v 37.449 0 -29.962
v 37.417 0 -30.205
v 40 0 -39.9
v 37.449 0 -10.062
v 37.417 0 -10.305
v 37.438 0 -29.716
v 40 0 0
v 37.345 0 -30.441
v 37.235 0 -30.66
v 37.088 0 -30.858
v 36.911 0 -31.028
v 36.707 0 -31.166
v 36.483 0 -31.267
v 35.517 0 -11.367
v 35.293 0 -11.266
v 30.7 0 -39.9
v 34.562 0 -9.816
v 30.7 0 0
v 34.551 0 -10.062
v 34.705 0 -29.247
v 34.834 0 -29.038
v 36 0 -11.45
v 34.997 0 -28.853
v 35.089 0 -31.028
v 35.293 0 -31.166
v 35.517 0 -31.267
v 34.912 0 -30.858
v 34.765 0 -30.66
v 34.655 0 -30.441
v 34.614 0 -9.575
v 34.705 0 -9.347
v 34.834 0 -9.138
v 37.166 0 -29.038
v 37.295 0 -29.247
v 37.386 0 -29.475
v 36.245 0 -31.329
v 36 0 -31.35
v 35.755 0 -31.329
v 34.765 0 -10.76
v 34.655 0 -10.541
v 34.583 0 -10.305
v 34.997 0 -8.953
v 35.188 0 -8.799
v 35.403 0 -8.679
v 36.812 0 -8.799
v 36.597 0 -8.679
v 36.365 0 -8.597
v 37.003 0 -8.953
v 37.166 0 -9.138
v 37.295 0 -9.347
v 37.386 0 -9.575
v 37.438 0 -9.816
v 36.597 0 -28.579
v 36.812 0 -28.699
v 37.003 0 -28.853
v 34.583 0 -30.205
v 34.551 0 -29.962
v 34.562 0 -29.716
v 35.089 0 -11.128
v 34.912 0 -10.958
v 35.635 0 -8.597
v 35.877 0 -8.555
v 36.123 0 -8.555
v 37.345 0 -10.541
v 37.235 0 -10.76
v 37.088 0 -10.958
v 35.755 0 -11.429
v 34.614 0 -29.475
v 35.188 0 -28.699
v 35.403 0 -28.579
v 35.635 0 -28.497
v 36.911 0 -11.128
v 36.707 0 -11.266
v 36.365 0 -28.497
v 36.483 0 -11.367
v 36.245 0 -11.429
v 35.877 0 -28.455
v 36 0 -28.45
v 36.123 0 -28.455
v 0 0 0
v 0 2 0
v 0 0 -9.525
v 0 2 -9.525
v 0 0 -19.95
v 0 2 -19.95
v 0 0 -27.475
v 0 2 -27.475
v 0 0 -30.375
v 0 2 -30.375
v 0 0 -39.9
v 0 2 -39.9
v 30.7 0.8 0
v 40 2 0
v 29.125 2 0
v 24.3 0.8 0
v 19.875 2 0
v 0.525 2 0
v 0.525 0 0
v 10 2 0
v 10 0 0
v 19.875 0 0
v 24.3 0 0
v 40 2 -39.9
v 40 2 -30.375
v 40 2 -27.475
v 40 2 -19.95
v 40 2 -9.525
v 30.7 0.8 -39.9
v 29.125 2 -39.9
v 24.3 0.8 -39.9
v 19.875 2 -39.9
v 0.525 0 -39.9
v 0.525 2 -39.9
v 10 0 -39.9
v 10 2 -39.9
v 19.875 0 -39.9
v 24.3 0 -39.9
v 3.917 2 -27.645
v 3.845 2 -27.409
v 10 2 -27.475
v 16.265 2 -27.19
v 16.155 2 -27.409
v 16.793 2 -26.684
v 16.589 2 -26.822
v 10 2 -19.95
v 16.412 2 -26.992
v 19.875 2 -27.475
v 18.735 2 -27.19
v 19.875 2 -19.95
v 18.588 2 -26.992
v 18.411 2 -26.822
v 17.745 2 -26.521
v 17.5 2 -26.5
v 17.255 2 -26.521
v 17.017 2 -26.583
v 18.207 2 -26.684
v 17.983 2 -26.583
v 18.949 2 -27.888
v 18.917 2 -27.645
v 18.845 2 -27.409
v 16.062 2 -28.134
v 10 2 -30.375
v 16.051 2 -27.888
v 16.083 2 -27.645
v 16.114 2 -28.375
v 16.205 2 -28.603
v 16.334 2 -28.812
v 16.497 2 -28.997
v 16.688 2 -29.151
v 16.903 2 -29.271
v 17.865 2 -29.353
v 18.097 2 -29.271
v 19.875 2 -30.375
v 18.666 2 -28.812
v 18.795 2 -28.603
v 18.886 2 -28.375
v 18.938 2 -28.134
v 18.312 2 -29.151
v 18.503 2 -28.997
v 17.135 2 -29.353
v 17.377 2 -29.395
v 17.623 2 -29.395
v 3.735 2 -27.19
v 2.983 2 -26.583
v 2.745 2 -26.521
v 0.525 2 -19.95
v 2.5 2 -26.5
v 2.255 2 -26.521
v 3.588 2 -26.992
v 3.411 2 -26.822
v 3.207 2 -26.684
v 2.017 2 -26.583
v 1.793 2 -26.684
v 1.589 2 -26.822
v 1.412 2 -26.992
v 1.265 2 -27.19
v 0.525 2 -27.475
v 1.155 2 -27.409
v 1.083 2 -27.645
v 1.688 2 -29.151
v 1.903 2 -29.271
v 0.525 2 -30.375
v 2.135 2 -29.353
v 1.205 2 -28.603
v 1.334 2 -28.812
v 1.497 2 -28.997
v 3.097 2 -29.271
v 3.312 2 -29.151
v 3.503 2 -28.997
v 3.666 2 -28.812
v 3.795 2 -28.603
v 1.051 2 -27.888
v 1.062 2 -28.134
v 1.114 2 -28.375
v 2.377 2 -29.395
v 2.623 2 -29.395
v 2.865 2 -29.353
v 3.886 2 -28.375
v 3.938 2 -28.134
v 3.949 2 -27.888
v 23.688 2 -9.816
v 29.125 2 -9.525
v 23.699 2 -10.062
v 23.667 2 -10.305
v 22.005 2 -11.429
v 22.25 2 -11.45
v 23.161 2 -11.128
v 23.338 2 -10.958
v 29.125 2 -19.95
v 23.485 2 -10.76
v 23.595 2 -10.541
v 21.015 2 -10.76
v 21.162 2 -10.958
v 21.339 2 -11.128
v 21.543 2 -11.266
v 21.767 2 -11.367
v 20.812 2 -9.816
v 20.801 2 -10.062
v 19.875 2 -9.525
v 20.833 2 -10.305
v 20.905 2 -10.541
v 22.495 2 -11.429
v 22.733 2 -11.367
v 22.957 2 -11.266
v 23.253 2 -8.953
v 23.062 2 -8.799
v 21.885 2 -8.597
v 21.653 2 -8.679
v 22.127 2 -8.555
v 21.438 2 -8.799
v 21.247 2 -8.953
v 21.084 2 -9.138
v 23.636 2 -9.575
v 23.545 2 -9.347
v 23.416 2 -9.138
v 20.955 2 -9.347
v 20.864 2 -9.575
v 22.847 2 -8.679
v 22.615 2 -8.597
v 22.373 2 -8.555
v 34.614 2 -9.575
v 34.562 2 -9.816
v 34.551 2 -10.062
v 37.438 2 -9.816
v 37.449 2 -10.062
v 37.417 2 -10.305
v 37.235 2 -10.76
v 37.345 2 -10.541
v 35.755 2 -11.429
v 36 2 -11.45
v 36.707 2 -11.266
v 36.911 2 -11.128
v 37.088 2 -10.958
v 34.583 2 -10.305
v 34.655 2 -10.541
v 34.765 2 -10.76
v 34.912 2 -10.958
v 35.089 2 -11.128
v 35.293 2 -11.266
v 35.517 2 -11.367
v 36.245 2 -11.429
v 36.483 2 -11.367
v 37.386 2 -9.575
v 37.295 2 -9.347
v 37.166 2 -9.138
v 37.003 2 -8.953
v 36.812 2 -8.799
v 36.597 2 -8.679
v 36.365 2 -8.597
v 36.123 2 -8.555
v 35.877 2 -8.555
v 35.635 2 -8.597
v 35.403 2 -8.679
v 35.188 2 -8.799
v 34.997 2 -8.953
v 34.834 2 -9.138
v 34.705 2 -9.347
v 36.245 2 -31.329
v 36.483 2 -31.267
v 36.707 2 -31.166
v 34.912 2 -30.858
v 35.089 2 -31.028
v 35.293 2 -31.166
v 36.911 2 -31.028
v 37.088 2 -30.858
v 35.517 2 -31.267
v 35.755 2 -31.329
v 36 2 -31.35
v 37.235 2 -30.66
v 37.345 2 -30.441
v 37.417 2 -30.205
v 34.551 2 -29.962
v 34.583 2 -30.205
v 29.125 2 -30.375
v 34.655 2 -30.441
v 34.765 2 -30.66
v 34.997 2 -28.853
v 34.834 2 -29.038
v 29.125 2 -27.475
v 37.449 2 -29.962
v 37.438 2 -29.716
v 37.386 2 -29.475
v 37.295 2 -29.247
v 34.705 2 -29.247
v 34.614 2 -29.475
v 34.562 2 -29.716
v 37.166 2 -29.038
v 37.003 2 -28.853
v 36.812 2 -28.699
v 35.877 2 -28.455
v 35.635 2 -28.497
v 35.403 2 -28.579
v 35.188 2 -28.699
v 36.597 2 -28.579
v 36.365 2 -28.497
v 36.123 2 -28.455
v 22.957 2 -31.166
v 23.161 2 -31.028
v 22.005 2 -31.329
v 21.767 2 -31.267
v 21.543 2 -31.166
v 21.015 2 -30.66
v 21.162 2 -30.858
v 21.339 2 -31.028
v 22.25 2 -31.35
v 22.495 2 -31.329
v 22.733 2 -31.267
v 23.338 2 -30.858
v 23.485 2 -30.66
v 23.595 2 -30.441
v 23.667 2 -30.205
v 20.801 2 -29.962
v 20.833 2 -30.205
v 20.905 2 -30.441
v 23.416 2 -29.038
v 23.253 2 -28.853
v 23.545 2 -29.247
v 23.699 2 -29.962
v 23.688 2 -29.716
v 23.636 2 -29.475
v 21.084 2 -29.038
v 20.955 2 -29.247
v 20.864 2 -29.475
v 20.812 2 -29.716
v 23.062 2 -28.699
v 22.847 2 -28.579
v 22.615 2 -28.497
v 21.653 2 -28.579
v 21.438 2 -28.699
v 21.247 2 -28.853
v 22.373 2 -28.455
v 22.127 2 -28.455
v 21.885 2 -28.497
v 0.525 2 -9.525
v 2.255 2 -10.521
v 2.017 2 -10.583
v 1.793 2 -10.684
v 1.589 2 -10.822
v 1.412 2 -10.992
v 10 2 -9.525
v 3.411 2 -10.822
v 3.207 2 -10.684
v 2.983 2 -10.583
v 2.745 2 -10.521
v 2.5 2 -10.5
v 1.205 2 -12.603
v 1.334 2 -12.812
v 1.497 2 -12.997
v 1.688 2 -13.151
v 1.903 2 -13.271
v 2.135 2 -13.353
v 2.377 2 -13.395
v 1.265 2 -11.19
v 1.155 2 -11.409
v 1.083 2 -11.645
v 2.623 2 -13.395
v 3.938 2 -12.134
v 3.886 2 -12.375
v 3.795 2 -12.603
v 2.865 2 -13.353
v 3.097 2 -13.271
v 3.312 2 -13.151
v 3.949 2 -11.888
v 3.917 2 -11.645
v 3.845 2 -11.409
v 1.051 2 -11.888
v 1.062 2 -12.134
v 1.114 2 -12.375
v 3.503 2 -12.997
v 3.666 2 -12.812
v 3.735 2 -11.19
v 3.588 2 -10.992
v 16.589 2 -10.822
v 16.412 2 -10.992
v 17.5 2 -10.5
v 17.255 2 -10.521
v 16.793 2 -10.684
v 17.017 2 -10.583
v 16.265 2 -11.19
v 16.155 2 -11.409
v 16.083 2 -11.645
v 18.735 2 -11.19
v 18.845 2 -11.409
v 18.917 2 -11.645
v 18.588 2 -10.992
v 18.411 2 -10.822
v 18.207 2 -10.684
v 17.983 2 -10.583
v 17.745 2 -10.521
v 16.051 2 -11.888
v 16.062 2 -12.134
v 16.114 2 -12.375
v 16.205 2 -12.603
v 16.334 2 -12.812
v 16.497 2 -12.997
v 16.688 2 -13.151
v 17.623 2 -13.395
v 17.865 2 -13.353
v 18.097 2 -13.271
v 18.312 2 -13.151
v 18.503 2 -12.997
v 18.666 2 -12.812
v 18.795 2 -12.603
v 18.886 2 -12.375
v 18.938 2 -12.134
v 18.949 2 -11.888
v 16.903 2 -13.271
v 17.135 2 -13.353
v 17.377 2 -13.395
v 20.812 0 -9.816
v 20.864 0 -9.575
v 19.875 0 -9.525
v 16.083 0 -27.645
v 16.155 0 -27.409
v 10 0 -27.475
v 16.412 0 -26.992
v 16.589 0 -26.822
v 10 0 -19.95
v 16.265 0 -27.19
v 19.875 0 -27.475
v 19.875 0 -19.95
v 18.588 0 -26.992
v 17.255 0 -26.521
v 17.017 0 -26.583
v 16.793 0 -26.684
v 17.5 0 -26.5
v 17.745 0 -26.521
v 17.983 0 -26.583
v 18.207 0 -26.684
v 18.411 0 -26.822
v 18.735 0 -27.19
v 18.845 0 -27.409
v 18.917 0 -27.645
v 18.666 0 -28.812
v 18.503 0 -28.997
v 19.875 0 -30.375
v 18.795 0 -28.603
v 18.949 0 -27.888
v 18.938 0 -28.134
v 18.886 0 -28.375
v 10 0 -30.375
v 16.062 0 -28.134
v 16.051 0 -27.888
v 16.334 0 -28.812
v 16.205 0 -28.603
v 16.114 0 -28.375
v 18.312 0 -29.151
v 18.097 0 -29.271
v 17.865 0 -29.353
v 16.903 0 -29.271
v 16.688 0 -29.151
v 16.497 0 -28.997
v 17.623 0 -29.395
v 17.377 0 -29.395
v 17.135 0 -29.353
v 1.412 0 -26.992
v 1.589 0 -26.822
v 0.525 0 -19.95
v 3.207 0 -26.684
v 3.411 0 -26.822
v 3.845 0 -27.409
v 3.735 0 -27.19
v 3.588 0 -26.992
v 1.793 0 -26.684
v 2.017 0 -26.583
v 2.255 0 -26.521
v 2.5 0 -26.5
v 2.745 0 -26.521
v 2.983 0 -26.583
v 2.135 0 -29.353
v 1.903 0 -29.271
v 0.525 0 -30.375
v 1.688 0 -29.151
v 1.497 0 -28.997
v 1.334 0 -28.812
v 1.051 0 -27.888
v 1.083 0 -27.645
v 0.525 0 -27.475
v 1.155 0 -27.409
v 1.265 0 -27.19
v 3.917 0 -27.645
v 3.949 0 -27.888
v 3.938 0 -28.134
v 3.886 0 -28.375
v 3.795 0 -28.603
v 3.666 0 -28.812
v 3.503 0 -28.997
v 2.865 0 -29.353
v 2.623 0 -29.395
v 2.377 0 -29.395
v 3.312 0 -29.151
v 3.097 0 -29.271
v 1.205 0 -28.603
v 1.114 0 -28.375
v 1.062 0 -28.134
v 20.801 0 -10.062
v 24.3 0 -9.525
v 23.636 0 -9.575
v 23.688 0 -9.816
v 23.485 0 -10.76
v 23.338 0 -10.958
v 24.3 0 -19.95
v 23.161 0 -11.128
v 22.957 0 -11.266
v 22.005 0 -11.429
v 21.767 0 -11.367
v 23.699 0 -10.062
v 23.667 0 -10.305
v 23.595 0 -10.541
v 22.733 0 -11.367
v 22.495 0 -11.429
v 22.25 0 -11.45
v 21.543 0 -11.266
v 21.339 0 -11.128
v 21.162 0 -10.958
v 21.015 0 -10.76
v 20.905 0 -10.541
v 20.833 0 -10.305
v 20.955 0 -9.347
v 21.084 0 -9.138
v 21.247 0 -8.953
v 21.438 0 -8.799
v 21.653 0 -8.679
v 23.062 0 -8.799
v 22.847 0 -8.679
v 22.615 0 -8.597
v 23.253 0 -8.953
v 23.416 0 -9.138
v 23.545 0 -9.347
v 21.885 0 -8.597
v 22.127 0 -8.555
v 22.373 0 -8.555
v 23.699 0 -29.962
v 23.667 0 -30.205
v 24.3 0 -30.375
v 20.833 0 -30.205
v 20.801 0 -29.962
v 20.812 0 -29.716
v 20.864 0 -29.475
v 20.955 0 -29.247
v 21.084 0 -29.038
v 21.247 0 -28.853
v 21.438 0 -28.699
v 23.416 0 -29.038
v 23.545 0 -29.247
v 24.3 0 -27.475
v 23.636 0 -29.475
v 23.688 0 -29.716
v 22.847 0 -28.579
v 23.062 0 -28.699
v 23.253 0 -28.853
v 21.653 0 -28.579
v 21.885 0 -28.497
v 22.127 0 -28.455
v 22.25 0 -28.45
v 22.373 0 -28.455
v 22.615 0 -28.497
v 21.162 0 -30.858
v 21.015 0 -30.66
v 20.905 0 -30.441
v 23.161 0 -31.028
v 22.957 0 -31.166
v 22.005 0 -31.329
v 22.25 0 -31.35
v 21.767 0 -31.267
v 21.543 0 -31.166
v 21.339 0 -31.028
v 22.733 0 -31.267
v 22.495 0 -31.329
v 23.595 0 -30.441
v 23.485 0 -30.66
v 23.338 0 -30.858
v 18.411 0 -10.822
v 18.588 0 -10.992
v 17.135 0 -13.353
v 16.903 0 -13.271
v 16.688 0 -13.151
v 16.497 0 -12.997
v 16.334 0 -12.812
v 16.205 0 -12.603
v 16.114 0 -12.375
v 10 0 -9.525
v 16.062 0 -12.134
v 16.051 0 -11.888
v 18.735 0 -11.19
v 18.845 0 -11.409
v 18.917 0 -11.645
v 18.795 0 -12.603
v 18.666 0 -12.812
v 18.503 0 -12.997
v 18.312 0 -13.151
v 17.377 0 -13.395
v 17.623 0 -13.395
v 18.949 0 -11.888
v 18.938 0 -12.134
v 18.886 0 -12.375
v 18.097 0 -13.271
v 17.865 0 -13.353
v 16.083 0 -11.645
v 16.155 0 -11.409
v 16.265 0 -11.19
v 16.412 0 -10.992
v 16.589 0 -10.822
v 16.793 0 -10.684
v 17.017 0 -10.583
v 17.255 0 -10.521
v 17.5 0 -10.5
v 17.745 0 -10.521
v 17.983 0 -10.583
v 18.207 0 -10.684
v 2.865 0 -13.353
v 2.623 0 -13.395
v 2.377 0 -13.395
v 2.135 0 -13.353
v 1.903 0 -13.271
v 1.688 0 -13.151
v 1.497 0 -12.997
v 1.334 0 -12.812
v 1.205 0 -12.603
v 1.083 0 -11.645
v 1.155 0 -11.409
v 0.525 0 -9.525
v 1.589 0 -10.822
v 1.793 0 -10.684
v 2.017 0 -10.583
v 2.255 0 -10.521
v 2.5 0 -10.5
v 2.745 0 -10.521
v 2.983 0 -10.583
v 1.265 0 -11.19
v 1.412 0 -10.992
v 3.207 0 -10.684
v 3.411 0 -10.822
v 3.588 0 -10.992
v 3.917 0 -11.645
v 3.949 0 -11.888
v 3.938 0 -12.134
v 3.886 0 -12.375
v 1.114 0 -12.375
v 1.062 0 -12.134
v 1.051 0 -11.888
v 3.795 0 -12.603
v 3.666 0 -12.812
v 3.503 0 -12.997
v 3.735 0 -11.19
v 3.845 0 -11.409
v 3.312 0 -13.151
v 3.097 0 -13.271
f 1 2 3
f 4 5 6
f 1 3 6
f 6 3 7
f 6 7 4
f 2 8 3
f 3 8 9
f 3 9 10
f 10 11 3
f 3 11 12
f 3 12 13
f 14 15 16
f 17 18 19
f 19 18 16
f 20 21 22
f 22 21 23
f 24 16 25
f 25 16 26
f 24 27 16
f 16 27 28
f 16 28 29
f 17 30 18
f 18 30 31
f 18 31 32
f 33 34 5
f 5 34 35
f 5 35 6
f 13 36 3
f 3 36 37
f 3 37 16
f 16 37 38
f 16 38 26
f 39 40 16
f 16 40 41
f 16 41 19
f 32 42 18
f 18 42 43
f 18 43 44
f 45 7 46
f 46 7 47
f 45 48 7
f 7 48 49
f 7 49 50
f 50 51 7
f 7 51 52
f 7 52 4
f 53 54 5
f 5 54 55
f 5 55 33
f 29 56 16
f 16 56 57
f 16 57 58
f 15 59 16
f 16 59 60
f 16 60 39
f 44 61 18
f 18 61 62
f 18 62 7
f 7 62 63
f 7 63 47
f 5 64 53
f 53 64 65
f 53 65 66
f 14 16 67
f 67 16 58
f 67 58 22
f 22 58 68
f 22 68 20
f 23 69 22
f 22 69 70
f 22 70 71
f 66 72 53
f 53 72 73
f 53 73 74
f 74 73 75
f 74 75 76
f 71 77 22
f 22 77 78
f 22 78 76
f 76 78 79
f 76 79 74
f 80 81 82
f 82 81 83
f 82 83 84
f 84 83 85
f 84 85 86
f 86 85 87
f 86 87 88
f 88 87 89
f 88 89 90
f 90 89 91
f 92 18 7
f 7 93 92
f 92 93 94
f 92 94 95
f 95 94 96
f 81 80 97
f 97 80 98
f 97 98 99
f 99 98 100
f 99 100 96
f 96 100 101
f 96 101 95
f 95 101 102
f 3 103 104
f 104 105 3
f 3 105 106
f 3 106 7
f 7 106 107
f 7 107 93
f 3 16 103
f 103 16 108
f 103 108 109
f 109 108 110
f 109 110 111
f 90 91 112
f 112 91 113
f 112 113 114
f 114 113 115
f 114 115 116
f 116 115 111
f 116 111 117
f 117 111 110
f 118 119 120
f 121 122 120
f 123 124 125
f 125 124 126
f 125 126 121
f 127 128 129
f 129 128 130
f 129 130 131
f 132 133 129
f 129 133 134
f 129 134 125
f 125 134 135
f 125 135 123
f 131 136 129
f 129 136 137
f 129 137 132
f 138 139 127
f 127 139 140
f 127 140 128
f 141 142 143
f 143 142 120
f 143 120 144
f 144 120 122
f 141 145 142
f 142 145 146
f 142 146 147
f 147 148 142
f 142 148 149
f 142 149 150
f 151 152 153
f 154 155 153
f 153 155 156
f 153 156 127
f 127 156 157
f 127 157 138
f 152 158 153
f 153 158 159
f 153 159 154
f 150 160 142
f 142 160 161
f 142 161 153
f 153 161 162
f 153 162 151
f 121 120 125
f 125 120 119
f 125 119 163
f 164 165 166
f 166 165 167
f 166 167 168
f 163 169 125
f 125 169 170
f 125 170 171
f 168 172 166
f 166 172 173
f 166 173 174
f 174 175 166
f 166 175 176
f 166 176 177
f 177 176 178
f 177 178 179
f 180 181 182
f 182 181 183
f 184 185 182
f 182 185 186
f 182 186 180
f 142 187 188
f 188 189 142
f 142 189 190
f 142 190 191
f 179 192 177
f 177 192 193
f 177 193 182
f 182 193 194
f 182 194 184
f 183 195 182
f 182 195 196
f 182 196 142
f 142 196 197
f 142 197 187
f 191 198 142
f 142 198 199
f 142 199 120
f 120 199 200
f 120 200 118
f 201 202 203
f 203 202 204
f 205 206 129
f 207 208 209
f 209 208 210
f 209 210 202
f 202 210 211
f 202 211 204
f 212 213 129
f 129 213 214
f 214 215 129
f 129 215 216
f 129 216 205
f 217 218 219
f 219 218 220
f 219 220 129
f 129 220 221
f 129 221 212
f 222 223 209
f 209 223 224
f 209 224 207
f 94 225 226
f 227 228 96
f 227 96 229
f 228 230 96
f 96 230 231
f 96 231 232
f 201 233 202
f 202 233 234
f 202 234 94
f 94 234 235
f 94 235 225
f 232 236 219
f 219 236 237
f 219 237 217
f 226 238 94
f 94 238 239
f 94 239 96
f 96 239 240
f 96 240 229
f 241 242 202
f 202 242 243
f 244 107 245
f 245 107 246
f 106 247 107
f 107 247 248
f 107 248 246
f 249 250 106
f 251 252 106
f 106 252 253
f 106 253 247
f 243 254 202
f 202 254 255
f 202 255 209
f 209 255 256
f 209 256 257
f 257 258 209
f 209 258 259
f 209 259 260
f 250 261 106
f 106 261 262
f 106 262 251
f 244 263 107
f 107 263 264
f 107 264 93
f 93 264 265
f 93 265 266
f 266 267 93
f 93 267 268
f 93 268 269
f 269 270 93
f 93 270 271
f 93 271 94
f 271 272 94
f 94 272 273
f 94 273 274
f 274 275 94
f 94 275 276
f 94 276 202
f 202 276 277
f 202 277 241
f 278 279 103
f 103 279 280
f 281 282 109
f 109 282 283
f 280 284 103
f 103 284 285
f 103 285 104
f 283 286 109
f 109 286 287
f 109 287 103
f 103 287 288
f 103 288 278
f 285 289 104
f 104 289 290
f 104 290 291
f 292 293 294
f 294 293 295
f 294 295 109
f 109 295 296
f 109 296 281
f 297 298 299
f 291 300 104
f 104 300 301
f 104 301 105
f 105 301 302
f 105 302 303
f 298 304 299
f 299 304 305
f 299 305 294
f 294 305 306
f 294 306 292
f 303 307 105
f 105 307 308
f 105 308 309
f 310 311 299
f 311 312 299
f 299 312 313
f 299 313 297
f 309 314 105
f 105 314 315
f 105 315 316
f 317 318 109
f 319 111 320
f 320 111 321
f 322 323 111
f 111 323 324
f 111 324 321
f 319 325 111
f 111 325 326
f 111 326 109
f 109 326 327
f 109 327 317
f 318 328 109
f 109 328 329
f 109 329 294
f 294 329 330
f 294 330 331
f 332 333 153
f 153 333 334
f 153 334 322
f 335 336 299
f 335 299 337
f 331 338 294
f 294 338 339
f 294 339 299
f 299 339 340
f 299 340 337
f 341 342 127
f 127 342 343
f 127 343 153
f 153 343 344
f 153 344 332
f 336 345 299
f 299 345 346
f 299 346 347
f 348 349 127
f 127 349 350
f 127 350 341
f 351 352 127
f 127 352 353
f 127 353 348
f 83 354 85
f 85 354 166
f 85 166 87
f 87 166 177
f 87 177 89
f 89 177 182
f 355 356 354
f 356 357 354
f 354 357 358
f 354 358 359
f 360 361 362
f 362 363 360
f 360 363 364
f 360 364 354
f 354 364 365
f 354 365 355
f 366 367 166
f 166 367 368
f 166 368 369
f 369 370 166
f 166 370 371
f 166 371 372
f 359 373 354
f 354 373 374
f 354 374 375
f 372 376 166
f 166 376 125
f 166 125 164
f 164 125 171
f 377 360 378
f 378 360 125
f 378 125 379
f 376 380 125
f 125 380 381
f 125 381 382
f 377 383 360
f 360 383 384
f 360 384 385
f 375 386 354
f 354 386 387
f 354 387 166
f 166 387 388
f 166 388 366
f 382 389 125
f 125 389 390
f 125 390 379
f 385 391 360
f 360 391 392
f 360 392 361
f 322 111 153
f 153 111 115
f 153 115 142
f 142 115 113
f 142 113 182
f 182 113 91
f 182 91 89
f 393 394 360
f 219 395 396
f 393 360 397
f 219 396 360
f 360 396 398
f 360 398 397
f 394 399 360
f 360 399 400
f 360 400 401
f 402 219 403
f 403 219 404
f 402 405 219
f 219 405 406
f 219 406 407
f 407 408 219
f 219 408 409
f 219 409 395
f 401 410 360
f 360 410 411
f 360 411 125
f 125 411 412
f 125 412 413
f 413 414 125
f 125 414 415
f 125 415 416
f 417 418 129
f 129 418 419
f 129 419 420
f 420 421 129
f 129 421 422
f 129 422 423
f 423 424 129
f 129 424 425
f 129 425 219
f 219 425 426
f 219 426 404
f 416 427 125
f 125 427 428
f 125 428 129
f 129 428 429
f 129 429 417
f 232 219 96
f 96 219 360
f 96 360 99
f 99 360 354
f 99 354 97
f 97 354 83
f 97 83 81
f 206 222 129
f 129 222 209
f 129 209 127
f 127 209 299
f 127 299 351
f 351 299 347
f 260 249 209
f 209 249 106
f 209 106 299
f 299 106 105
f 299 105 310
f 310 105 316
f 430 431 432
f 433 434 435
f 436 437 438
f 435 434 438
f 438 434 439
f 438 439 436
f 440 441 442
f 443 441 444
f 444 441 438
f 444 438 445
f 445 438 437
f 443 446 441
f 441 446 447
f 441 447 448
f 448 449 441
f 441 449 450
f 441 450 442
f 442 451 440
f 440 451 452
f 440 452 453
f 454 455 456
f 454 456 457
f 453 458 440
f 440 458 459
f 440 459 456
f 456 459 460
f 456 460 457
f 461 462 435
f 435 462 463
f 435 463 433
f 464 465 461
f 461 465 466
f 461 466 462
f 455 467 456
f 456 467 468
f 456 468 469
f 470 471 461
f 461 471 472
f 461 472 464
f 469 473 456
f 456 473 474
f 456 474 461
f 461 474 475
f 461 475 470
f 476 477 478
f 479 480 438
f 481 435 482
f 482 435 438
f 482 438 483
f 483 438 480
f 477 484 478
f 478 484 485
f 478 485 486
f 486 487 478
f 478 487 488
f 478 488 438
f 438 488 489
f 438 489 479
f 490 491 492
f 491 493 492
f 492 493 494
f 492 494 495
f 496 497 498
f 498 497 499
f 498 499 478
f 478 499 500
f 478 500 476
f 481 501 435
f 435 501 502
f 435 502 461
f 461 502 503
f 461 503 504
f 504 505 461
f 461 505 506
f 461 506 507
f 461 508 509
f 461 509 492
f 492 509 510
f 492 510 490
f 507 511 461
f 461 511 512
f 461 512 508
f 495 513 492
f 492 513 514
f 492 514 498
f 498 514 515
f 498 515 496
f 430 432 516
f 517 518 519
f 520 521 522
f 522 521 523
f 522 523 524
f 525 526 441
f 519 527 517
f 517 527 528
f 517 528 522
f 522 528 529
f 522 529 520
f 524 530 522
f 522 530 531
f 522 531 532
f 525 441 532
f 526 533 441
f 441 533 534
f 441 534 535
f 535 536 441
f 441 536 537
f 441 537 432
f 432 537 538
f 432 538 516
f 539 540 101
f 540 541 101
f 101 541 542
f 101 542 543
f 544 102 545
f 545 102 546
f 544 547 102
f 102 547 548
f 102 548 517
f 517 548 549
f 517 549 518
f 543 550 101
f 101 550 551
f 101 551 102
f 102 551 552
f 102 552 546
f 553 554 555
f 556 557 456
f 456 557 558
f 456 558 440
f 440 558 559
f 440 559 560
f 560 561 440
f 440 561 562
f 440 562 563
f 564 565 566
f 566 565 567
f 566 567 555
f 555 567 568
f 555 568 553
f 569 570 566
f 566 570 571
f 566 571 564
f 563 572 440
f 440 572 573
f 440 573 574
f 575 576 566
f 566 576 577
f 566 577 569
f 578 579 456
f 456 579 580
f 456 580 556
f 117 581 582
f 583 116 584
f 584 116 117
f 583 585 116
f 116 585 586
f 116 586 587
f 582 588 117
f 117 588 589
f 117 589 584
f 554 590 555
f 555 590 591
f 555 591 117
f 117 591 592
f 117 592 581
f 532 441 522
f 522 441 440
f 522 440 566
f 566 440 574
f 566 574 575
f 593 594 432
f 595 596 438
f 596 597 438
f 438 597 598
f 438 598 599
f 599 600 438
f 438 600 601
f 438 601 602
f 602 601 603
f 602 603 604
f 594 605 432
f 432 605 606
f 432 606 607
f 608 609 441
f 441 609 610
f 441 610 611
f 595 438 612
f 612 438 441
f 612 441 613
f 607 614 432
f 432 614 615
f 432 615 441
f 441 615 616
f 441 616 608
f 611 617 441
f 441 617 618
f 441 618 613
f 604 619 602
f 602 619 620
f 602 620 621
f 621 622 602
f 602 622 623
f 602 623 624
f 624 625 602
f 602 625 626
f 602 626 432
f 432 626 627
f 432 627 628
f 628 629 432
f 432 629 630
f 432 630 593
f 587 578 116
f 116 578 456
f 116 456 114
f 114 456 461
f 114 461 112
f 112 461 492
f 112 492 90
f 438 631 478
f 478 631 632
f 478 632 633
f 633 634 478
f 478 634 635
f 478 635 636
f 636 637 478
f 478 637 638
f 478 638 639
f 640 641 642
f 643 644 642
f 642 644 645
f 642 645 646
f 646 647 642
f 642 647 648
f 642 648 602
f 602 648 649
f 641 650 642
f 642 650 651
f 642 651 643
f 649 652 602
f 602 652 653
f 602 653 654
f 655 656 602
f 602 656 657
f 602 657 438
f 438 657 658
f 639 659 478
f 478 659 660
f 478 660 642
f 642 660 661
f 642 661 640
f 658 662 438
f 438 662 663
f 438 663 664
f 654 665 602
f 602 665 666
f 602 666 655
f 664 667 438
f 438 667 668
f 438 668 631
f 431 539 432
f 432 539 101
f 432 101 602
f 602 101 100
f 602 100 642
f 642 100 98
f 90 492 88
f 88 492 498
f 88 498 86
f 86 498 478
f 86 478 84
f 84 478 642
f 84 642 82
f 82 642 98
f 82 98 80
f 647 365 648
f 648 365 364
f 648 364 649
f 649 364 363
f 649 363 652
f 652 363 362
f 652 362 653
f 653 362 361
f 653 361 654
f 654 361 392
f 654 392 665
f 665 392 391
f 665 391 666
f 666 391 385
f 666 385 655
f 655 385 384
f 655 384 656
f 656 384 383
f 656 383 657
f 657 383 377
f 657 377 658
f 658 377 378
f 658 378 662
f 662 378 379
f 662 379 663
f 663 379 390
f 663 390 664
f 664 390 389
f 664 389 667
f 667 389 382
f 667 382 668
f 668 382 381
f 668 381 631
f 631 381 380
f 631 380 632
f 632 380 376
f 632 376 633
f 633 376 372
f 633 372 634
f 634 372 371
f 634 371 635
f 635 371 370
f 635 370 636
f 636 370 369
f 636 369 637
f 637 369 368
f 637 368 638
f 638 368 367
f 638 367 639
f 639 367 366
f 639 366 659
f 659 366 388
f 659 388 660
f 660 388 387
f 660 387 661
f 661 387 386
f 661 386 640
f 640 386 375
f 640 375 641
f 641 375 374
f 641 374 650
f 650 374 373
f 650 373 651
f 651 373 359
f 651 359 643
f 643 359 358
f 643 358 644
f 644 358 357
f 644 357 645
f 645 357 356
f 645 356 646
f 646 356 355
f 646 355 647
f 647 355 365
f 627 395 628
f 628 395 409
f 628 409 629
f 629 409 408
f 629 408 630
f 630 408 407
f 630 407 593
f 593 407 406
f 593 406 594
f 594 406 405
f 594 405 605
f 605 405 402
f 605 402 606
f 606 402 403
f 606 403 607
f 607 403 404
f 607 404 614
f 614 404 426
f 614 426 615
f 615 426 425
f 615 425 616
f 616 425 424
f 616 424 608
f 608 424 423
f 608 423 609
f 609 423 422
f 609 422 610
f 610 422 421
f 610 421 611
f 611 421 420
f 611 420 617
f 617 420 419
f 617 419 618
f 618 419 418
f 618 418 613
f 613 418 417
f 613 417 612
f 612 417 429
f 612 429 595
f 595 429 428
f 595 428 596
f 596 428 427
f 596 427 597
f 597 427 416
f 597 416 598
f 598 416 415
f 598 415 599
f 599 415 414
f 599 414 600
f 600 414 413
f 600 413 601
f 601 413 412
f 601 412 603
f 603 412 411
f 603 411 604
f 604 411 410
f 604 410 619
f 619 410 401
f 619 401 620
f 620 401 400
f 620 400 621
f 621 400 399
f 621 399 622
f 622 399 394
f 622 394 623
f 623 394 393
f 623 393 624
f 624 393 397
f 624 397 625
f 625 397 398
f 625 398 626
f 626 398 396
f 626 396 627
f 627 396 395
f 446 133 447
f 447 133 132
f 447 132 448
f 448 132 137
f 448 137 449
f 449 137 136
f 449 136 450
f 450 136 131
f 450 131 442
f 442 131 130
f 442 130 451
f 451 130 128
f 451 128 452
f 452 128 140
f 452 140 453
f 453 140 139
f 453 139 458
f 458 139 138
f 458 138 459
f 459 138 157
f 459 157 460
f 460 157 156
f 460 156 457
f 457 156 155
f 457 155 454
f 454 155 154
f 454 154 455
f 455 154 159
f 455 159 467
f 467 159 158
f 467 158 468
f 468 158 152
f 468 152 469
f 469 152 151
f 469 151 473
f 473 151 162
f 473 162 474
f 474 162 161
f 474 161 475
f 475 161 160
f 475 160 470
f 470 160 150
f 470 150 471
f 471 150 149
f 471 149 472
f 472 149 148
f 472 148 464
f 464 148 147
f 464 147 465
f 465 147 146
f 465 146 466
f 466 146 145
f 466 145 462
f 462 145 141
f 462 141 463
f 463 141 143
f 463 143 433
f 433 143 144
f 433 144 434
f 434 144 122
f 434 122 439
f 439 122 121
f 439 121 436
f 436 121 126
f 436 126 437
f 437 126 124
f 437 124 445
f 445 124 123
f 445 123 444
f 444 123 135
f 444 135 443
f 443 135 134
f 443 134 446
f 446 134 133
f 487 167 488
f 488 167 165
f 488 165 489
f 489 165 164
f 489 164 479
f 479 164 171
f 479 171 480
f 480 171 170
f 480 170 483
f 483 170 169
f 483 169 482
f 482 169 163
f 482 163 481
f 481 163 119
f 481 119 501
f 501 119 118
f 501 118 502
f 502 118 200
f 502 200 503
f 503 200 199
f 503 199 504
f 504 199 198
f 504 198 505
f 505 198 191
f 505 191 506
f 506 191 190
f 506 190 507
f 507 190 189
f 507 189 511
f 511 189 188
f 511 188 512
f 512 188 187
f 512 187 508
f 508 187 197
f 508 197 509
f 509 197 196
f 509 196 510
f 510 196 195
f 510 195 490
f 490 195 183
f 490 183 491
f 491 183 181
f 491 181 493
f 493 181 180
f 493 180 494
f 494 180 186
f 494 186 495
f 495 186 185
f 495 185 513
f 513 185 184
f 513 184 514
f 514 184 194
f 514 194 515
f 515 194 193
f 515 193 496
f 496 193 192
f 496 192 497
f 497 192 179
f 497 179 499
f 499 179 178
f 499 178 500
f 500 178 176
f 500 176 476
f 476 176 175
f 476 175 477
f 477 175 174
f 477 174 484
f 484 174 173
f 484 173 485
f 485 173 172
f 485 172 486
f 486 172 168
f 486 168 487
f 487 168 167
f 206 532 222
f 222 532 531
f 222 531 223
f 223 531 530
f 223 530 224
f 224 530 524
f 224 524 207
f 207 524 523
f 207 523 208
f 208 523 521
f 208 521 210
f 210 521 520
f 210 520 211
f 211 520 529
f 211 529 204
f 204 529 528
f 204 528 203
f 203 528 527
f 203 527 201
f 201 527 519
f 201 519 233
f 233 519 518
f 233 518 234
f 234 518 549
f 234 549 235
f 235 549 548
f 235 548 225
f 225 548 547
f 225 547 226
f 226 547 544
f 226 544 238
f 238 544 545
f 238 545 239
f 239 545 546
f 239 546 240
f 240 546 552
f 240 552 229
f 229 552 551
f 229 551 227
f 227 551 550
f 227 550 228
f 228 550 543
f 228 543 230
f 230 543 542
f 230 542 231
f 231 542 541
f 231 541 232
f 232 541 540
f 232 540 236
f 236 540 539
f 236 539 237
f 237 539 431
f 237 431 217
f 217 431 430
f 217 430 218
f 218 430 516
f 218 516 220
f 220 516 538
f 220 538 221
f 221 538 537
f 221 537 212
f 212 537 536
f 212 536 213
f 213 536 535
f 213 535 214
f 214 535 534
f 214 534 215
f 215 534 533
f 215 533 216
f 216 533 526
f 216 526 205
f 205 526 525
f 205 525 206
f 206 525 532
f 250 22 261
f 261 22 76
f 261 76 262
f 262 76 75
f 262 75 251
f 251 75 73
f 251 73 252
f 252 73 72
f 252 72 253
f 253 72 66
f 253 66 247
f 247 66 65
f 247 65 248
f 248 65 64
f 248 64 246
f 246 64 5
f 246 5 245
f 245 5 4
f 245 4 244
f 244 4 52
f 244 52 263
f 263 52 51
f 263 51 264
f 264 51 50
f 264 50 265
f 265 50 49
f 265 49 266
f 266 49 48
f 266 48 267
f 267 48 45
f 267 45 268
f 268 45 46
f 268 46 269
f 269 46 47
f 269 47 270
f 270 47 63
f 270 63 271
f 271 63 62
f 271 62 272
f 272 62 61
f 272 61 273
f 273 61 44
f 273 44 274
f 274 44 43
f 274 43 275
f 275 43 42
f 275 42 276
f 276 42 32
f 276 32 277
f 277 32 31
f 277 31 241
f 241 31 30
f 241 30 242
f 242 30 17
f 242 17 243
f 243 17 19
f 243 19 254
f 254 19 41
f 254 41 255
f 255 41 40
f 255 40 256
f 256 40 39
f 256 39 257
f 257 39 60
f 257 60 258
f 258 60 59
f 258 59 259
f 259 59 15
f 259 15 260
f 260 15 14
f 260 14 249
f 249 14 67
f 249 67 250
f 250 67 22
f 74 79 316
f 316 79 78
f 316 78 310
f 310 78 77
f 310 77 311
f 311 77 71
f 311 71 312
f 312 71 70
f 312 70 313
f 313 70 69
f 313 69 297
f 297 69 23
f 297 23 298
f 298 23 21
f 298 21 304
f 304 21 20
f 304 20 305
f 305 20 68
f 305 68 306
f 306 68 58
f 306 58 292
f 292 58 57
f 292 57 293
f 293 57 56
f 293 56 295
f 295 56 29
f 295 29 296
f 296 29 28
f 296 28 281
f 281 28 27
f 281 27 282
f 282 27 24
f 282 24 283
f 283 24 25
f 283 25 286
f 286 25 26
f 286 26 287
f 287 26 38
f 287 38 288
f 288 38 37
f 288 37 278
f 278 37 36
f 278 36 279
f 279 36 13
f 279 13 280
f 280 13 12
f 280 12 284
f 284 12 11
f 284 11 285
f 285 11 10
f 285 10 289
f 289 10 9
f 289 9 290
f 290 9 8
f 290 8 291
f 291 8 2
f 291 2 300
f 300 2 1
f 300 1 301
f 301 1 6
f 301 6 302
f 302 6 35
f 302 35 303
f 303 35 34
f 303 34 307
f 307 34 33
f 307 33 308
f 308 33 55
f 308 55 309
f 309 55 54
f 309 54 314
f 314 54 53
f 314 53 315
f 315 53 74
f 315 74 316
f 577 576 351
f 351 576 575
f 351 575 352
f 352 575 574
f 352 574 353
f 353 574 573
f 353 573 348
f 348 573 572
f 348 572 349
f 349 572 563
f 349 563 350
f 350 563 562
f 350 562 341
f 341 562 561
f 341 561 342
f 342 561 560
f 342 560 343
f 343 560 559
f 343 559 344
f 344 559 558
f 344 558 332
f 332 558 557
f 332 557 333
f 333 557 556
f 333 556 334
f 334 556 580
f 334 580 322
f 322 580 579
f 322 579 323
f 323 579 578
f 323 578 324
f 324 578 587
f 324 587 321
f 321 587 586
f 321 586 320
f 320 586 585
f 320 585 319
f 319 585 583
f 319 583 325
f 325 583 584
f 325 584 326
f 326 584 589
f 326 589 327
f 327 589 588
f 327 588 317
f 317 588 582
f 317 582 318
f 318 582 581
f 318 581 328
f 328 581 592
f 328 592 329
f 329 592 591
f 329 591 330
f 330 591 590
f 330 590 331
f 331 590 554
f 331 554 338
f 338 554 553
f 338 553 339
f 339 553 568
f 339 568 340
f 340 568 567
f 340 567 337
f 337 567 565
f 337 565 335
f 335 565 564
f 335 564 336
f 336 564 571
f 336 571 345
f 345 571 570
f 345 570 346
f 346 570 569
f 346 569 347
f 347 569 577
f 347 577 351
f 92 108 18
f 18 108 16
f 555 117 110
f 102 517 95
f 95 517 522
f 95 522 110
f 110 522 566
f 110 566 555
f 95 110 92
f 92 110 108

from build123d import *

# Parameters (mm, degrees)
SKETCH_1_W          = 40
SKETCH_1_H          = 39.9
EXTRUDE_1_DEPTH     = 2
SKETCH_2_R          = 1.45
CUT_EXTRUDE_1_DEPTH = 2
CUT_EXTRUDE_3_REACH = 58.533
SKETCH_5_R          = 1.45
SKETCH_7_W          = 6.4
SKETCH_7_H          = 39.9
CUT_EXTRUDE_5_DEPTH = 0.8


with BuildPart() as part:
    # 草图1 → 凸台-拉伸1 (new body)
    with BuildSketch(Plane(origin=(0, 0, 0), x_dir=(1, 0, 0), z_dir=(0, 1, 0))):
        with Locations((20, 19.95)):
            Rectangle(SKETCH_1_W, SKETCH_1_H)
    extrude(amount=EXTRUDE_1_DEPTH)

    # 草图2 → 切除-拉伸1 (cut)
    with BuildSketch(Plane(origin=(0, 2, 0), x_dir=(1, 0, 0), z_dir=(0, 1, 0))):
        with Locations(Location((2.5, 11.95, 0), (0, 0, 270))):
            Circle(SKETCH_2_R)
        with Locations(Location((17.5, 11.95, 0), (0, 0, 270))):
            Circle(SKETCH_2_R)
        with Locations(Location((17.5, 27.95, 0), (0, 0, 270))):
            Circle(SKETCH_2_R)
        with Locations(Location((2.5, 27.95, 0), (0, 0, 270))):
            Circle(SKETCH_2_R)
    extrude(amount=-CUT_EXTRUDE_1_DEPTH, mode=Mode.SUBTRACT)

    # 草图5 → 切除-拉伸3 (cut, up to next)
    with BuildSketch(Plane.XZ, mode=Mode.PRIVATE) as cut_extrude_3_sk1:
        with Locations(Location((22.25, -10, 0), (0, 0, 270))):
            Circle(SKETCH_5_R)
    cut_extrude_3_tool1 = extrude(cut_extrude_3_sk1.sketch, amount=-CUT_EXTRUDE_3_REACH, mode=Mode.PRIVATE) & part.part
    # 草图5 → 切除-拉伸3 (cut, up to next)
    with BuildSketch(Plane.XZ, mode=Mode.PRIVATE) as cut_extrude_3_sk2:
        with Locations(Location((36, -10, 0), (0, 0, 270))):
            Circle(SKETCH_5_R)
    cut_extrude_3_tool2 = extrude(cut_extrude_3_sk2.sketch, amount=-CUT_EXTRUDE_3_REACH, mode=Mode.PRIVATE) & part.part
    # 草图5 → 切除-拉伸3 (cut, up to next)
    with BuildSketch(Plane.XZ, mode=Mode.PRIVATE) as cut_extrude_3_sk3:
        with Locations(Location((36, -29.9, 0), (0, 0, 270))):
            Circle(SKETCH_5_R)
    cut_extrude_3_tool3 = extrude(cut_extrude_3_sk3.sketch, amount=-CUT_EXTRUDE_3_REACH, mode=Mode.PRIVATE) & part.part
    # 草图5 → 切除-拉伸3 (cut, up to next)
    with BuildSketch(Plane.XZ, mode=Mode.PRIVATE) as cut_extrude_3_sk4:
        with Locations(Location((22.25, -29.9, 0), (0, 0, 270))):
            Circle(SKETCH_5_R)
    cut_extrude_3_tool4 = extrude(cut_extrude_3_sk4.sketch, amount=-CUT_EXTRUDE_3_REACH, mode=Mode.PRIVATE) & part.part
    add(cut_extrude_3_tool1.solids().sort_by_distance((22.25, 0, -10))[0], mode=Mode.SUBTRACT)
    add(cut_extrude_3_tool2.solids().sort_by_distance((36, 0, -10))[0], mode=Mode.SUBTRACT)
    add(cut_extrude_3_tool3.solids().sort_by_distance((36, 0, -29.9))[0], mode=Mode.SUBTRACT)
    add(cut_extrude_3_tool4.solids().sort_by_distance((22.25, 0, -29.9))[0], mode=Mode.SUBTRACT)

    # 草图7 → 切除-拉伸5 (cut)
    with BuildSketch(Plane.XZ):
        with Locations((27.5, -19.95)):
            Rectangle(SKETCH_7_W, SKETCH_7_H)
    extrude(amount=-CUT_EXTRUDE_5_DEPTH, mode=Mode.SUBTRACT)


solid = part.part
